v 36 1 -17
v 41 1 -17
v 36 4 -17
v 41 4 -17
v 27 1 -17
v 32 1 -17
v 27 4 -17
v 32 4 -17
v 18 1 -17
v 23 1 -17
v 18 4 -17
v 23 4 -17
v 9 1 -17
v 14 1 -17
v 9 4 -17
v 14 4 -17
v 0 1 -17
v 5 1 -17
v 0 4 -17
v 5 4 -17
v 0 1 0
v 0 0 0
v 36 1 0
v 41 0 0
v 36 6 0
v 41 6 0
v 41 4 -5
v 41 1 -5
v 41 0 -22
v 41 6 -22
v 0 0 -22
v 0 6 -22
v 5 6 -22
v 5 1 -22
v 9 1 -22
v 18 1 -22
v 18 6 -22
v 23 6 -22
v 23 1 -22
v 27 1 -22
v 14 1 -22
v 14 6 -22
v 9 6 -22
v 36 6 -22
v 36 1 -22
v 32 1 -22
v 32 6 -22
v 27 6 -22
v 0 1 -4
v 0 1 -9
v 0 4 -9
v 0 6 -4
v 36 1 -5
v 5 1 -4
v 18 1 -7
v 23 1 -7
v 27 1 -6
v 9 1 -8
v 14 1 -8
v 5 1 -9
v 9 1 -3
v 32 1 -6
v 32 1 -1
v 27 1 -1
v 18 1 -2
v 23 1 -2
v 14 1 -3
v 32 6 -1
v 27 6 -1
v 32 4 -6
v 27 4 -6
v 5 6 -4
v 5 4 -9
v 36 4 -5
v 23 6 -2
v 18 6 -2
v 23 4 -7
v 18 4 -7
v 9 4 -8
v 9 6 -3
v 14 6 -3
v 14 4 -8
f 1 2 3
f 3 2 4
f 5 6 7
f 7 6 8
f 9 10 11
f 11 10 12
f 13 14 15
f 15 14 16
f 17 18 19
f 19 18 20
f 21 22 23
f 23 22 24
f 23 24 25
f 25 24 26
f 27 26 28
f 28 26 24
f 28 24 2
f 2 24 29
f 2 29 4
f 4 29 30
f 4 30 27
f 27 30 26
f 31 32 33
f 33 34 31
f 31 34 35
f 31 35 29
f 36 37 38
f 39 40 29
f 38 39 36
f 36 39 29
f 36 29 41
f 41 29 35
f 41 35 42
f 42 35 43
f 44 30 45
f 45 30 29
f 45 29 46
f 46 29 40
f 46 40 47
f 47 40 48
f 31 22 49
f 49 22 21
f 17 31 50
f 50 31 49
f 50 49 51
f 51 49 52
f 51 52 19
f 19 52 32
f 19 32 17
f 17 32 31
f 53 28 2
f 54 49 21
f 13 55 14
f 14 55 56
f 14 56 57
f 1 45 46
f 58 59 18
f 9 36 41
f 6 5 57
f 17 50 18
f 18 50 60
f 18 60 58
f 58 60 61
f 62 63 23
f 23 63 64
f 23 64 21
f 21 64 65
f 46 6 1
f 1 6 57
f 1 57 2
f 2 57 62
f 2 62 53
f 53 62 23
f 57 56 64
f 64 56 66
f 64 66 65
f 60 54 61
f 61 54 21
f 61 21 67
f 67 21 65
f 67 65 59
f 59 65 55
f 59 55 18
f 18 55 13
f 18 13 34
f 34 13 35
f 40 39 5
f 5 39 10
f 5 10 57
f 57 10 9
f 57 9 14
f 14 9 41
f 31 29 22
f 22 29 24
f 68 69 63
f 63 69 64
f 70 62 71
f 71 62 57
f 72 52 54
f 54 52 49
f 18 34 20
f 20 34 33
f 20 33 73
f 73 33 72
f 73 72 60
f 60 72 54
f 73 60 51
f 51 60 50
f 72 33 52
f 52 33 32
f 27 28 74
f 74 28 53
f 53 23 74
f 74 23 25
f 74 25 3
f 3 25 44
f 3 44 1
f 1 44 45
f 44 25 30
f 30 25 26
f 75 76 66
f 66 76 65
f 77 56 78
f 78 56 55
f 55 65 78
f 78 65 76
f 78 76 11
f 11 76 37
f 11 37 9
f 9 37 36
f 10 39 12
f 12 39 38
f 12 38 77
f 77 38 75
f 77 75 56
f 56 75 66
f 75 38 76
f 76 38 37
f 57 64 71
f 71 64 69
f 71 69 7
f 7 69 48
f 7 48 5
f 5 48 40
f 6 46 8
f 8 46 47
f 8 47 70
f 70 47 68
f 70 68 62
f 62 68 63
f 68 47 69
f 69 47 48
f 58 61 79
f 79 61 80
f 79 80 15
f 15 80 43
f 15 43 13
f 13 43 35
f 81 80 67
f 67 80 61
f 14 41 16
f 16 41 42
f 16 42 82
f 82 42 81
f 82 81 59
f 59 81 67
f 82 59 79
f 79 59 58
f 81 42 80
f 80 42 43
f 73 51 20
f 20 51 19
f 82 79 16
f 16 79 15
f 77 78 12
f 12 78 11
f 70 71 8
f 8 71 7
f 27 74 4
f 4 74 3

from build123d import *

# Parameters (mm, degrees)
SKETCH1_W            = 41
SKETCH1_H            = 22
BASE_DEPTH           = 1
SKETCH2_W            = 5
SKETCH2_H            = 5
LEGS_EXTRUSION_DEPTH = 5
SKETCH3_W            = 5
SKETCH3_H            = 2
BRIDGE1_DEPTH        = 8
SKETCH4_W            = 5
SKETCH4_H            = 2
BRIDGE2_DEPTH        = 9
SKETCH6_W            = 5
SKETCH6_H            = 2
BRIDGE3_DEPTH        = 10
SKETCH7_W            = 5
SKETCH7_H            = 2
BRIDGE4_DEPTH        = 11
SKETCH8_W            = 5
SKETCH8_H            = 2
BRIDGE5_DEPTH        = 12


with BuildPart() as part:
    # Sketch1 → Base (new body)
    with BuildSketch(Plane(origin=(0, 0, 0), x_dir=(1, 0, 0), z_dir=(0, 1, 0))):
        with Locations((20.5, 11)):
            Rectangle(SKETCH1_W, SKETCH1_H)
    extrude(amount=BASE_DEPTH)

    # Sketch2 → Legs_Extrusion (add)
    with BuildSketch(Plane(origin=(0, 1, 0), x_dir=(1, 0, 0), z_dir=(0, 1, 0))):
        with Locations((2.5, 19.5)):
            Rectangle(SKETCH2_W, SKETCH2_H)
        with Locations((2.5, 6.5)):
            Rectangle(SKETCH2_W, SKETCH2_H)
        with Locations((38.5, 2.5)):
            Rectangle(SKETCH2_W, SKETCH2_H)
        with Locations((38.5, 19.5)):
            Rectangle(SKETCH2_W, SKETCH2_H)
        with Locations((11.5, 19.5)):
            Rectangle(SKETCH2_W, SKETCH2_H)
        with Locations((11.5, 5.5)):
            Rectangle(SKETCH2_W, SKETCH2_H)
        with Locations((20.5, 19.5)):
            Rectangle(SKETCH2_W, SKETCH2_H)
        with Locations((29.5, 19.5)):
            Rectangle(SKETCH2_W, SKETCH2_H)
        with Locations((20.5, 4.5)):
            Rectangle(SKETCH2_W, SKETCH2_H)
        with Locations((29.5, 3.5)):
            Rectangle(SKETCH2_W, SKETCH2_H)
    extrude(amount=LEGS_EXTRUSION_DEPTH)

    # Sketch3 → bridge1 (add)
    with BuildSketch(Plane.XY.offset(-17)):
        with Locations((2.5, 5)):
            Rectangle(SKETCH3_W, SKETCH3_H)
    extrude(amount=BRIDGE1_DEPTH)

    # Sketch4 → bridge2 (add)
    with BuildSketch(Plane.XY.offset(-17)):
        with Locations((11.5, 5)):
            Rectangle(SKETCH4_W, SKETCH4_H)
    extrude(amount=BRIDGE2_DEPTH)

    # Sketch6 → bridge3 (add)
    with BuildSketch(Plane.XY.offset(-17)):
        with Locations((20.5, 5)):
            Rectangle(SKETCH6_W, SKETCH6_H)
    extrude(amount=BRIDGE3_DEPTH)

    # Sketch7 → bridge4 (add)
    with BuildSketch(Plane.XY.offset(-17)):
        with Locations((29.5, 5)):
            Rectangle(SKETCH7_W, SKETCH7_H)
    extrude(amount=BRIDGE4_DEPTH)

    # Sketch8 → bridge5 (add)
    with BuildSketch(Plane.XY.offset(-17)):
        with Locations((38.5, 5)):
            Rectangle(SKETCH8_W, SKETCH8_H)
    extrude(amount=BRIDGE5_DEPTH)


solid = part.part
